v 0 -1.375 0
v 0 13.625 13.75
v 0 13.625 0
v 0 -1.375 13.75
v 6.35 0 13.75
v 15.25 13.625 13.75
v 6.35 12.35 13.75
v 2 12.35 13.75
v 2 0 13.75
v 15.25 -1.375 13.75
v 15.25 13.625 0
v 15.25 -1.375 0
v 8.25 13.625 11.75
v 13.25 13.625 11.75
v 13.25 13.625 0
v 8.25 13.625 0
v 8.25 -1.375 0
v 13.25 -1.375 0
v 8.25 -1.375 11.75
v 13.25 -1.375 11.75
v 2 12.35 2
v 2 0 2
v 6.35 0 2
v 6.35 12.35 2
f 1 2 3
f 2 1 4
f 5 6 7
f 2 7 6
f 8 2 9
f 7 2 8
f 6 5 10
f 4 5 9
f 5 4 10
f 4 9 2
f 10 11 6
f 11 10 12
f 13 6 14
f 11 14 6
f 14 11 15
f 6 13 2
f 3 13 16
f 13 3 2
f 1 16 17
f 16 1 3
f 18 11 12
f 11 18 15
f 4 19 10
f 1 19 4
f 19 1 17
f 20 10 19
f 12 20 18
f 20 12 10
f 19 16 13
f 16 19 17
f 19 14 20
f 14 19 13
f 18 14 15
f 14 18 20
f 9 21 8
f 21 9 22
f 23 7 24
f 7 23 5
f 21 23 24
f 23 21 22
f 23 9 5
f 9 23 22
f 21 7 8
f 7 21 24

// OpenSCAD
// Holder to hang my my https://buy.garmin.com/en-US/US/p/10997 onto the book-rack in our living room (where I use it the most)

wallthickness = 2;
width = 15;
height = 9.75;
metalwidth = 5;
depth = 4.25+metalwidth+3*wallthickness;

// USB-connector
module usb() {cube([4.35, 12.35, 9.85]);}

difference() {
    difference() {
    // main body
    translate([0,(width-12.25)*-0.5,0]) cube([depth,width,height+2*wallthickness]);
    // Slot in the back to 'mount' it
    translate([depth-metalwidth-wallthickness,-wallthickness,-wallthickness])
        #cube([metalwidth,width+0.5*wallthickness,height+2*wallthickness]);
    }
        // ANT stick slot
    translate([wallthickness,0,wallthickness]) #usb();
        translate([wallthickness,0,height+wallthickness]) #usb();
}
